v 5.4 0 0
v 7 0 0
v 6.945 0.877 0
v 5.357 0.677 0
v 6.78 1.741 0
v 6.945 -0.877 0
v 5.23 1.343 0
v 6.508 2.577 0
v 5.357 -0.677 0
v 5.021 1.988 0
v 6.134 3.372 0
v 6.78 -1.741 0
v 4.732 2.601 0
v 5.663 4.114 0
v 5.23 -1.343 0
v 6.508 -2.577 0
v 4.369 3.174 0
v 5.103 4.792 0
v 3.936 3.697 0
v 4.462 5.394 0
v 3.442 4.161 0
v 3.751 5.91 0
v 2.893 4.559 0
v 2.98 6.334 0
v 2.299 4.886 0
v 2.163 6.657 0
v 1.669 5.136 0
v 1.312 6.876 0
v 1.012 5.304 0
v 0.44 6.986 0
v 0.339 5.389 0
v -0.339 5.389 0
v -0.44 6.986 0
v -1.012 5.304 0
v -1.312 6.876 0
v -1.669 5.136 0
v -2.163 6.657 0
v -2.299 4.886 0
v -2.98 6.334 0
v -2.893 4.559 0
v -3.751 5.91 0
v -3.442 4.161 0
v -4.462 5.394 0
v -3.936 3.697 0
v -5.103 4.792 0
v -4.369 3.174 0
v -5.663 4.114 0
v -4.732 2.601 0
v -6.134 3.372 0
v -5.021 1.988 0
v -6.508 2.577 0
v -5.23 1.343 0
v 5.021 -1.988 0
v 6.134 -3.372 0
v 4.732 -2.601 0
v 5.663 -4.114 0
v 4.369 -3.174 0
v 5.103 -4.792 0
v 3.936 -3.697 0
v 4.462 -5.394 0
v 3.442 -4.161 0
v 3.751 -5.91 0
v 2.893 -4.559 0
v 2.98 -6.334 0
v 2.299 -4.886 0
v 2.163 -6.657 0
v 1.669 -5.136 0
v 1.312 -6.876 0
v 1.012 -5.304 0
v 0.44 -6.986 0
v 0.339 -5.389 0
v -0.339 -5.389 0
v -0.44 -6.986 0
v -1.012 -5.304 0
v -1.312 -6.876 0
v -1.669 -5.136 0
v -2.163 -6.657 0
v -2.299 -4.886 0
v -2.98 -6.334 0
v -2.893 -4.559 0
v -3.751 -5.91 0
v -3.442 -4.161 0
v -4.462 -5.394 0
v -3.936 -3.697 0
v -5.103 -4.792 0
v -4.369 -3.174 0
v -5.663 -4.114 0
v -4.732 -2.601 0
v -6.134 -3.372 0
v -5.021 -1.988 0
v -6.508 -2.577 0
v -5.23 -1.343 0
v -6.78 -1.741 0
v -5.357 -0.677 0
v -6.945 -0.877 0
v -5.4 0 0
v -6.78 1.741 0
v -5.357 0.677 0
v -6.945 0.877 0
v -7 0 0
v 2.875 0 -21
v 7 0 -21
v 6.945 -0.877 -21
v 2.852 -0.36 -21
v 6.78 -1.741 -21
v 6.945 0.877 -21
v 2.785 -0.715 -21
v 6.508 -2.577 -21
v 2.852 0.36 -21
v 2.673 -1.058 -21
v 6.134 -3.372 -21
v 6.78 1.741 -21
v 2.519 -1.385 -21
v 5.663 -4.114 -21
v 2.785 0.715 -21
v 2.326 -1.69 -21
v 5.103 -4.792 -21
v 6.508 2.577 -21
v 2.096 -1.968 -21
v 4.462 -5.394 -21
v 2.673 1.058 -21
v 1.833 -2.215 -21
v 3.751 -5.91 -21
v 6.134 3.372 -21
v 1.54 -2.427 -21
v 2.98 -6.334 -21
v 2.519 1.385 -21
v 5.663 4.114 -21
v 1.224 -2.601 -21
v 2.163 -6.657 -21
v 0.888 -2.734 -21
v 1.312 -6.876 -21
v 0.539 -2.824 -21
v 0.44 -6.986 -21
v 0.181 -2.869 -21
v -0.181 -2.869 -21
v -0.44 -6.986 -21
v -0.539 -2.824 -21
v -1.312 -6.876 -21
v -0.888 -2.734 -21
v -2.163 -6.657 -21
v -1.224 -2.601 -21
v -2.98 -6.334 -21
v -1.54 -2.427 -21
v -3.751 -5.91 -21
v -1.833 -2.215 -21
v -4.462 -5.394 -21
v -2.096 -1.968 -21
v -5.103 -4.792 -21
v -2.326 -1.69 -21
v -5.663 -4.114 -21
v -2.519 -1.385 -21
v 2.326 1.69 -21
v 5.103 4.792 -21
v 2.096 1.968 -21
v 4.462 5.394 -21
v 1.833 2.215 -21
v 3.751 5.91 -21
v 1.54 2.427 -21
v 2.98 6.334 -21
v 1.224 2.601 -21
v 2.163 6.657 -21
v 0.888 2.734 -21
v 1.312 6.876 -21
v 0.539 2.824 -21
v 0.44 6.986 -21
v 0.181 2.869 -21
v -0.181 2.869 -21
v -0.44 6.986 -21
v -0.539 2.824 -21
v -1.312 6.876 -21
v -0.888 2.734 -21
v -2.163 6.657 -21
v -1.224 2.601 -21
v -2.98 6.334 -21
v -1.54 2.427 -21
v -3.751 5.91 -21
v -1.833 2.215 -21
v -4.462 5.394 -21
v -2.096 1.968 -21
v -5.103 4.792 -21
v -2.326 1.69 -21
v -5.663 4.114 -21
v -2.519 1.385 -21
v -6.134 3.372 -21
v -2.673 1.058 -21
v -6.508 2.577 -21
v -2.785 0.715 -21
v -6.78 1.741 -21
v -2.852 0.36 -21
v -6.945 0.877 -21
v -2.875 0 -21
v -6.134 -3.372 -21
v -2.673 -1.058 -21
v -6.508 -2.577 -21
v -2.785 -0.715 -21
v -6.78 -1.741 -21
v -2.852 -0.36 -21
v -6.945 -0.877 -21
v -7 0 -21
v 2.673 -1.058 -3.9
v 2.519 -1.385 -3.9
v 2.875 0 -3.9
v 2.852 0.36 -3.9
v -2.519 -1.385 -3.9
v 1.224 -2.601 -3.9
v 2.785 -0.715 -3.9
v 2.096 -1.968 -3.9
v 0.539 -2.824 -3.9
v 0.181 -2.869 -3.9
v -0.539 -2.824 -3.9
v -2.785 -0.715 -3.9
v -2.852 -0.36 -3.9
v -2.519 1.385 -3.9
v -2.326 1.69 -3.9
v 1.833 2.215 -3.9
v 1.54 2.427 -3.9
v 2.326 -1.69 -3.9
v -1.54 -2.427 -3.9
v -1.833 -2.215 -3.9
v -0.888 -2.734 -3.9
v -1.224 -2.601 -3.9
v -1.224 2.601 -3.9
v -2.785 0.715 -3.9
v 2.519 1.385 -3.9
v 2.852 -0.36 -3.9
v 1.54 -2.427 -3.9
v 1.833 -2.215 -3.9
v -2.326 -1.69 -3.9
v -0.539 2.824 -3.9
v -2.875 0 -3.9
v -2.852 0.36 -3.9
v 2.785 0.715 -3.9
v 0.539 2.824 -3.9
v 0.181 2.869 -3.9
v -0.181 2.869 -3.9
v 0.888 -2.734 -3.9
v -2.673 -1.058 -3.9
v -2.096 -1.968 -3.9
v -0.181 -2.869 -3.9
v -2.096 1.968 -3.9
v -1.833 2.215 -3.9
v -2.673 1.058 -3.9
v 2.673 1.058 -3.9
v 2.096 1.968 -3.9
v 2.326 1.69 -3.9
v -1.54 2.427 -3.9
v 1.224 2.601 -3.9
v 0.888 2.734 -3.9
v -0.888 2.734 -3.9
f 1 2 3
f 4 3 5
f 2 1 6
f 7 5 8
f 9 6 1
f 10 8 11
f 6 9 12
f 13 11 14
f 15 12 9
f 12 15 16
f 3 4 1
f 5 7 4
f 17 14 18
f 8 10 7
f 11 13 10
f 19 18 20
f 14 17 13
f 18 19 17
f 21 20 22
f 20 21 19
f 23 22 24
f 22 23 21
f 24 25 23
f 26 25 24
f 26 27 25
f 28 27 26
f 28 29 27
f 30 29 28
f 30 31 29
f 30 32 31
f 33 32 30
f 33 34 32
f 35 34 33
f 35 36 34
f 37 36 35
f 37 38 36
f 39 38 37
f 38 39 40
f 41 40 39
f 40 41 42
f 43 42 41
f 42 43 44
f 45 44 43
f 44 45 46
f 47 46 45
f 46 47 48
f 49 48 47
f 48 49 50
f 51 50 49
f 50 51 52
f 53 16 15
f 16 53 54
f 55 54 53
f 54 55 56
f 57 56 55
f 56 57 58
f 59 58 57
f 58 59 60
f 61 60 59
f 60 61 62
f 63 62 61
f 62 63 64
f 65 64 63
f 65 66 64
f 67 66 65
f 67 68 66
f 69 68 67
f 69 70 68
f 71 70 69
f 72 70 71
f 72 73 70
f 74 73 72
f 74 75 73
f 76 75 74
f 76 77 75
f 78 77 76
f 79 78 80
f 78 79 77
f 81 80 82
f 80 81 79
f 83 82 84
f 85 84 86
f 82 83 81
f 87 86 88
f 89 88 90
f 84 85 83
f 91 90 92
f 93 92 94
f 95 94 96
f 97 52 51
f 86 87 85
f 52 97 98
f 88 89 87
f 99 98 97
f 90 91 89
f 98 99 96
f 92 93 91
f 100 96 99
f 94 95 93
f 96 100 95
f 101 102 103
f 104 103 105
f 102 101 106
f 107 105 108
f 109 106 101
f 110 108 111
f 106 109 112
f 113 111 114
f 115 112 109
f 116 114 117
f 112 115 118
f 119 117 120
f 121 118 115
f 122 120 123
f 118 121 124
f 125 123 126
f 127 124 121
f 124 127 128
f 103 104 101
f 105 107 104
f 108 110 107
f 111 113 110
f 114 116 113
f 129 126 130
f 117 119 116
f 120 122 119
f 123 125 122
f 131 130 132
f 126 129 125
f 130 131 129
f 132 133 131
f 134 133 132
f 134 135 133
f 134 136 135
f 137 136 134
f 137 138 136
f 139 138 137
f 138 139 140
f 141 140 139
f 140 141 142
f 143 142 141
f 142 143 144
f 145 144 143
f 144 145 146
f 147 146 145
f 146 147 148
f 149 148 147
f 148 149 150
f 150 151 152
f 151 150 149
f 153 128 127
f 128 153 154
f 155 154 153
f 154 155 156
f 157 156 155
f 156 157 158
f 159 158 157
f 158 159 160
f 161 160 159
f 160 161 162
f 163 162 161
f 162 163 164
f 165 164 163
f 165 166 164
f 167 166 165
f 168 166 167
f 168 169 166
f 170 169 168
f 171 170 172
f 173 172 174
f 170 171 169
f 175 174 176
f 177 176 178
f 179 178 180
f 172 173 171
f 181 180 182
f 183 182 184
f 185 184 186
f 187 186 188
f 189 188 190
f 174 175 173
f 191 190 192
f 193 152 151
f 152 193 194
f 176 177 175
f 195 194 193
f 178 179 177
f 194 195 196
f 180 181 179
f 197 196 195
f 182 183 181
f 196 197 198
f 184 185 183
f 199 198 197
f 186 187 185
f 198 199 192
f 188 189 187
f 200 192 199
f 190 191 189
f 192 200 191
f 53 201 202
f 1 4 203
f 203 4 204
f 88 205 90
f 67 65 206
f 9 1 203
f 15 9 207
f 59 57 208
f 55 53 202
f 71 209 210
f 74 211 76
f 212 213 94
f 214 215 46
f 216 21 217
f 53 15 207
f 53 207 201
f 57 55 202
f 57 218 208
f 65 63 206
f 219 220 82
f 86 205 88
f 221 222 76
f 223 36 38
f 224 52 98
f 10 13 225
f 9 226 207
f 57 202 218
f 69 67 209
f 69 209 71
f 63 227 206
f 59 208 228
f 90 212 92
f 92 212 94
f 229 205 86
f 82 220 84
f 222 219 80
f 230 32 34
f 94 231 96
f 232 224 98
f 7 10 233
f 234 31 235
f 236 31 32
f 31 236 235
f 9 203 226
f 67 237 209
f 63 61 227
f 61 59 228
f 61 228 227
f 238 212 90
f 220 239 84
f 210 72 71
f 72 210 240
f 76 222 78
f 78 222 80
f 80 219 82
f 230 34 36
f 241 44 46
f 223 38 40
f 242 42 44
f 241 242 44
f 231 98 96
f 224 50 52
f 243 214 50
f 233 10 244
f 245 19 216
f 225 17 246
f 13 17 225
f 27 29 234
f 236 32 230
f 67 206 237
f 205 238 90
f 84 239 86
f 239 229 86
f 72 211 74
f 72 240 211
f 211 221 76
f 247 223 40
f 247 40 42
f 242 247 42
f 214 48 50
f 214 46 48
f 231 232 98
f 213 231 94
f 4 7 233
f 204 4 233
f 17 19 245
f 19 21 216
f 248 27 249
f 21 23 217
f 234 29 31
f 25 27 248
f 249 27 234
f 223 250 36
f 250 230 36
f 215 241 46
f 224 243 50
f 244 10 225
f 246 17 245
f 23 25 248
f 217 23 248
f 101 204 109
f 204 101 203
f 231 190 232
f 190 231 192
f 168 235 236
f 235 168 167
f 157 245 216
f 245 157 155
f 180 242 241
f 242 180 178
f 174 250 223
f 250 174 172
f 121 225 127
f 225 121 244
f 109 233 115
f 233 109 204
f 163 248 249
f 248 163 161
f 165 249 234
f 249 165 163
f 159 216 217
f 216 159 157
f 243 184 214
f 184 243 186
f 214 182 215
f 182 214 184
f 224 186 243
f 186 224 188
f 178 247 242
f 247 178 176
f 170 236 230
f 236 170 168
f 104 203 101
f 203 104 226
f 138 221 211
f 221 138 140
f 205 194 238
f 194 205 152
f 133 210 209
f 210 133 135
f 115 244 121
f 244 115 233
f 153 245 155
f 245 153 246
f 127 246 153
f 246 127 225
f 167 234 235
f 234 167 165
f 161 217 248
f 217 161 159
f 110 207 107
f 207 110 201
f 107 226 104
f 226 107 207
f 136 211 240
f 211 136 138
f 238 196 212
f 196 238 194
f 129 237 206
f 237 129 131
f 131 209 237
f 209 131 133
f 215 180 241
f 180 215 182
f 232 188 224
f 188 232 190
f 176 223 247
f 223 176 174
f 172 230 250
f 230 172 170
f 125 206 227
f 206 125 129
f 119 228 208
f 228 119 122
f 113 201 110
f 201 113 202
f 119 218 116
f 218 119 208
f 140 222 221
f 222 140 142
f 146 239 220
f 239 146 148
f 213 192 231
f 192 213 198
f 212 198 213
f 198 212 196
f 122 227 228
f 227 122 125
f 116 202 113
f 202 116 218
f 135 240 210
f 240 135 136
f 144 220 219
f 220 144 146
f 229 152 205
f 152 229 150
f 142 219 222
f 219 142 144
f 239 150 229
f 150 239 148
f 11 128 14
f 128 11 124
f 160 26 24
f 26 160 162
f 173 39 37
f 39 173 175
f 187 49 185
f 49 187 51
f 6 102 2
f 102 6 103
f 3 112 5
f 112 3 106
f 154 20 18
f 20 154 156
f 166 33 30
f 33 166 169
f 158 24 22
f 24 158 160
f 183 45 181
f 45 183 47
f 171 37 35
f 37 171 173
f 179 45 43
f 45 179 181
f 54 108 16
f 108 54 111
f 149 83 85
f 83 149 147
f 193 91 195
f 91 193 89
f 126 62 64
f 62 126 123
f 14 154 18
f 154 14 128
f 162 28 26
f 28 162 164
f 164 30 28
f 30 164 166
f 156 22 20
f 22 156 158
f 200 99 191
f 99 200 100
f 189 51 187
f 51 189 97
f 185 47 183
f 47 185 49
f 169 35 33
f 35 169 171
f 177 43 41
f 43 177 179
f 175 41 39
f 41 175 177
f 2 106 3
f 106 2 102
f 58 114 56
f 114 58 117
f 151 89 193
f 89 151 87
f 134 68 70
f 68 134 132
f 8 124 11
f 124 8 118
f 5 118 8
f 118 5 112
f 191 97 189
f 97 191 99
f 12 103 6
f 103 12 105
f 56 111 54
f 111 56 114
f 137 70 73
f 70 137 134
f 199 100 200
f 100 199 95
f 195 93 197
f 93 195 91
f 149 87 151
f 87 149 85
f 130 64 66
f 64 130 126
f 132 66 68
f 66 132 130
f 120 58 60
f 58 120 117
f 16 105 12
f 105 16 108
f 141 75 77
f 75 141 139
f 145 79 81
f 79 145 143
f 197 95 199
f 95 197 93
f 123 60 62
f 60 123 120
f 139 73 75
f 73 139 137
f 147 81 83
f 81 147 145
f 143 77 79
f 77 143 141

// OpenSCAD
$fn = 50;


difference() {
	union() {
		translate(v = [0, 0, -21.0000000000]) {
			cylinder(h = 21, r = 7.0000000000);
		}
		cylinder(h = 0, r = 16.0000000000);
	}
	union() {
		translate(v = [0, 0, 0]) {
			rotate(a = [0, 0, 0]) {
				difference() {
					union() {
						#translate(v = [0, 0, -21.0000000000]) {
							cylinder(h = 21, r = 2.6000000000);
						}
						#translate(v = [0, 0, -3.9000000000]) {
							cylinder(h = 3.9000000000, r1 = 2.8750000000, r2 = 5.4000000000);
						}
						#translate(v = [0, 0, -21.0000000000]) {
							cylinder(h = 21, r = 2.8750000000);
						}
						#translate(v = [0, 0, -21.0000000000]) {
							cylinder(h = 21, r = 2.6000000000);
						}
					}
					union();
				}
			}
		}
	}
}
